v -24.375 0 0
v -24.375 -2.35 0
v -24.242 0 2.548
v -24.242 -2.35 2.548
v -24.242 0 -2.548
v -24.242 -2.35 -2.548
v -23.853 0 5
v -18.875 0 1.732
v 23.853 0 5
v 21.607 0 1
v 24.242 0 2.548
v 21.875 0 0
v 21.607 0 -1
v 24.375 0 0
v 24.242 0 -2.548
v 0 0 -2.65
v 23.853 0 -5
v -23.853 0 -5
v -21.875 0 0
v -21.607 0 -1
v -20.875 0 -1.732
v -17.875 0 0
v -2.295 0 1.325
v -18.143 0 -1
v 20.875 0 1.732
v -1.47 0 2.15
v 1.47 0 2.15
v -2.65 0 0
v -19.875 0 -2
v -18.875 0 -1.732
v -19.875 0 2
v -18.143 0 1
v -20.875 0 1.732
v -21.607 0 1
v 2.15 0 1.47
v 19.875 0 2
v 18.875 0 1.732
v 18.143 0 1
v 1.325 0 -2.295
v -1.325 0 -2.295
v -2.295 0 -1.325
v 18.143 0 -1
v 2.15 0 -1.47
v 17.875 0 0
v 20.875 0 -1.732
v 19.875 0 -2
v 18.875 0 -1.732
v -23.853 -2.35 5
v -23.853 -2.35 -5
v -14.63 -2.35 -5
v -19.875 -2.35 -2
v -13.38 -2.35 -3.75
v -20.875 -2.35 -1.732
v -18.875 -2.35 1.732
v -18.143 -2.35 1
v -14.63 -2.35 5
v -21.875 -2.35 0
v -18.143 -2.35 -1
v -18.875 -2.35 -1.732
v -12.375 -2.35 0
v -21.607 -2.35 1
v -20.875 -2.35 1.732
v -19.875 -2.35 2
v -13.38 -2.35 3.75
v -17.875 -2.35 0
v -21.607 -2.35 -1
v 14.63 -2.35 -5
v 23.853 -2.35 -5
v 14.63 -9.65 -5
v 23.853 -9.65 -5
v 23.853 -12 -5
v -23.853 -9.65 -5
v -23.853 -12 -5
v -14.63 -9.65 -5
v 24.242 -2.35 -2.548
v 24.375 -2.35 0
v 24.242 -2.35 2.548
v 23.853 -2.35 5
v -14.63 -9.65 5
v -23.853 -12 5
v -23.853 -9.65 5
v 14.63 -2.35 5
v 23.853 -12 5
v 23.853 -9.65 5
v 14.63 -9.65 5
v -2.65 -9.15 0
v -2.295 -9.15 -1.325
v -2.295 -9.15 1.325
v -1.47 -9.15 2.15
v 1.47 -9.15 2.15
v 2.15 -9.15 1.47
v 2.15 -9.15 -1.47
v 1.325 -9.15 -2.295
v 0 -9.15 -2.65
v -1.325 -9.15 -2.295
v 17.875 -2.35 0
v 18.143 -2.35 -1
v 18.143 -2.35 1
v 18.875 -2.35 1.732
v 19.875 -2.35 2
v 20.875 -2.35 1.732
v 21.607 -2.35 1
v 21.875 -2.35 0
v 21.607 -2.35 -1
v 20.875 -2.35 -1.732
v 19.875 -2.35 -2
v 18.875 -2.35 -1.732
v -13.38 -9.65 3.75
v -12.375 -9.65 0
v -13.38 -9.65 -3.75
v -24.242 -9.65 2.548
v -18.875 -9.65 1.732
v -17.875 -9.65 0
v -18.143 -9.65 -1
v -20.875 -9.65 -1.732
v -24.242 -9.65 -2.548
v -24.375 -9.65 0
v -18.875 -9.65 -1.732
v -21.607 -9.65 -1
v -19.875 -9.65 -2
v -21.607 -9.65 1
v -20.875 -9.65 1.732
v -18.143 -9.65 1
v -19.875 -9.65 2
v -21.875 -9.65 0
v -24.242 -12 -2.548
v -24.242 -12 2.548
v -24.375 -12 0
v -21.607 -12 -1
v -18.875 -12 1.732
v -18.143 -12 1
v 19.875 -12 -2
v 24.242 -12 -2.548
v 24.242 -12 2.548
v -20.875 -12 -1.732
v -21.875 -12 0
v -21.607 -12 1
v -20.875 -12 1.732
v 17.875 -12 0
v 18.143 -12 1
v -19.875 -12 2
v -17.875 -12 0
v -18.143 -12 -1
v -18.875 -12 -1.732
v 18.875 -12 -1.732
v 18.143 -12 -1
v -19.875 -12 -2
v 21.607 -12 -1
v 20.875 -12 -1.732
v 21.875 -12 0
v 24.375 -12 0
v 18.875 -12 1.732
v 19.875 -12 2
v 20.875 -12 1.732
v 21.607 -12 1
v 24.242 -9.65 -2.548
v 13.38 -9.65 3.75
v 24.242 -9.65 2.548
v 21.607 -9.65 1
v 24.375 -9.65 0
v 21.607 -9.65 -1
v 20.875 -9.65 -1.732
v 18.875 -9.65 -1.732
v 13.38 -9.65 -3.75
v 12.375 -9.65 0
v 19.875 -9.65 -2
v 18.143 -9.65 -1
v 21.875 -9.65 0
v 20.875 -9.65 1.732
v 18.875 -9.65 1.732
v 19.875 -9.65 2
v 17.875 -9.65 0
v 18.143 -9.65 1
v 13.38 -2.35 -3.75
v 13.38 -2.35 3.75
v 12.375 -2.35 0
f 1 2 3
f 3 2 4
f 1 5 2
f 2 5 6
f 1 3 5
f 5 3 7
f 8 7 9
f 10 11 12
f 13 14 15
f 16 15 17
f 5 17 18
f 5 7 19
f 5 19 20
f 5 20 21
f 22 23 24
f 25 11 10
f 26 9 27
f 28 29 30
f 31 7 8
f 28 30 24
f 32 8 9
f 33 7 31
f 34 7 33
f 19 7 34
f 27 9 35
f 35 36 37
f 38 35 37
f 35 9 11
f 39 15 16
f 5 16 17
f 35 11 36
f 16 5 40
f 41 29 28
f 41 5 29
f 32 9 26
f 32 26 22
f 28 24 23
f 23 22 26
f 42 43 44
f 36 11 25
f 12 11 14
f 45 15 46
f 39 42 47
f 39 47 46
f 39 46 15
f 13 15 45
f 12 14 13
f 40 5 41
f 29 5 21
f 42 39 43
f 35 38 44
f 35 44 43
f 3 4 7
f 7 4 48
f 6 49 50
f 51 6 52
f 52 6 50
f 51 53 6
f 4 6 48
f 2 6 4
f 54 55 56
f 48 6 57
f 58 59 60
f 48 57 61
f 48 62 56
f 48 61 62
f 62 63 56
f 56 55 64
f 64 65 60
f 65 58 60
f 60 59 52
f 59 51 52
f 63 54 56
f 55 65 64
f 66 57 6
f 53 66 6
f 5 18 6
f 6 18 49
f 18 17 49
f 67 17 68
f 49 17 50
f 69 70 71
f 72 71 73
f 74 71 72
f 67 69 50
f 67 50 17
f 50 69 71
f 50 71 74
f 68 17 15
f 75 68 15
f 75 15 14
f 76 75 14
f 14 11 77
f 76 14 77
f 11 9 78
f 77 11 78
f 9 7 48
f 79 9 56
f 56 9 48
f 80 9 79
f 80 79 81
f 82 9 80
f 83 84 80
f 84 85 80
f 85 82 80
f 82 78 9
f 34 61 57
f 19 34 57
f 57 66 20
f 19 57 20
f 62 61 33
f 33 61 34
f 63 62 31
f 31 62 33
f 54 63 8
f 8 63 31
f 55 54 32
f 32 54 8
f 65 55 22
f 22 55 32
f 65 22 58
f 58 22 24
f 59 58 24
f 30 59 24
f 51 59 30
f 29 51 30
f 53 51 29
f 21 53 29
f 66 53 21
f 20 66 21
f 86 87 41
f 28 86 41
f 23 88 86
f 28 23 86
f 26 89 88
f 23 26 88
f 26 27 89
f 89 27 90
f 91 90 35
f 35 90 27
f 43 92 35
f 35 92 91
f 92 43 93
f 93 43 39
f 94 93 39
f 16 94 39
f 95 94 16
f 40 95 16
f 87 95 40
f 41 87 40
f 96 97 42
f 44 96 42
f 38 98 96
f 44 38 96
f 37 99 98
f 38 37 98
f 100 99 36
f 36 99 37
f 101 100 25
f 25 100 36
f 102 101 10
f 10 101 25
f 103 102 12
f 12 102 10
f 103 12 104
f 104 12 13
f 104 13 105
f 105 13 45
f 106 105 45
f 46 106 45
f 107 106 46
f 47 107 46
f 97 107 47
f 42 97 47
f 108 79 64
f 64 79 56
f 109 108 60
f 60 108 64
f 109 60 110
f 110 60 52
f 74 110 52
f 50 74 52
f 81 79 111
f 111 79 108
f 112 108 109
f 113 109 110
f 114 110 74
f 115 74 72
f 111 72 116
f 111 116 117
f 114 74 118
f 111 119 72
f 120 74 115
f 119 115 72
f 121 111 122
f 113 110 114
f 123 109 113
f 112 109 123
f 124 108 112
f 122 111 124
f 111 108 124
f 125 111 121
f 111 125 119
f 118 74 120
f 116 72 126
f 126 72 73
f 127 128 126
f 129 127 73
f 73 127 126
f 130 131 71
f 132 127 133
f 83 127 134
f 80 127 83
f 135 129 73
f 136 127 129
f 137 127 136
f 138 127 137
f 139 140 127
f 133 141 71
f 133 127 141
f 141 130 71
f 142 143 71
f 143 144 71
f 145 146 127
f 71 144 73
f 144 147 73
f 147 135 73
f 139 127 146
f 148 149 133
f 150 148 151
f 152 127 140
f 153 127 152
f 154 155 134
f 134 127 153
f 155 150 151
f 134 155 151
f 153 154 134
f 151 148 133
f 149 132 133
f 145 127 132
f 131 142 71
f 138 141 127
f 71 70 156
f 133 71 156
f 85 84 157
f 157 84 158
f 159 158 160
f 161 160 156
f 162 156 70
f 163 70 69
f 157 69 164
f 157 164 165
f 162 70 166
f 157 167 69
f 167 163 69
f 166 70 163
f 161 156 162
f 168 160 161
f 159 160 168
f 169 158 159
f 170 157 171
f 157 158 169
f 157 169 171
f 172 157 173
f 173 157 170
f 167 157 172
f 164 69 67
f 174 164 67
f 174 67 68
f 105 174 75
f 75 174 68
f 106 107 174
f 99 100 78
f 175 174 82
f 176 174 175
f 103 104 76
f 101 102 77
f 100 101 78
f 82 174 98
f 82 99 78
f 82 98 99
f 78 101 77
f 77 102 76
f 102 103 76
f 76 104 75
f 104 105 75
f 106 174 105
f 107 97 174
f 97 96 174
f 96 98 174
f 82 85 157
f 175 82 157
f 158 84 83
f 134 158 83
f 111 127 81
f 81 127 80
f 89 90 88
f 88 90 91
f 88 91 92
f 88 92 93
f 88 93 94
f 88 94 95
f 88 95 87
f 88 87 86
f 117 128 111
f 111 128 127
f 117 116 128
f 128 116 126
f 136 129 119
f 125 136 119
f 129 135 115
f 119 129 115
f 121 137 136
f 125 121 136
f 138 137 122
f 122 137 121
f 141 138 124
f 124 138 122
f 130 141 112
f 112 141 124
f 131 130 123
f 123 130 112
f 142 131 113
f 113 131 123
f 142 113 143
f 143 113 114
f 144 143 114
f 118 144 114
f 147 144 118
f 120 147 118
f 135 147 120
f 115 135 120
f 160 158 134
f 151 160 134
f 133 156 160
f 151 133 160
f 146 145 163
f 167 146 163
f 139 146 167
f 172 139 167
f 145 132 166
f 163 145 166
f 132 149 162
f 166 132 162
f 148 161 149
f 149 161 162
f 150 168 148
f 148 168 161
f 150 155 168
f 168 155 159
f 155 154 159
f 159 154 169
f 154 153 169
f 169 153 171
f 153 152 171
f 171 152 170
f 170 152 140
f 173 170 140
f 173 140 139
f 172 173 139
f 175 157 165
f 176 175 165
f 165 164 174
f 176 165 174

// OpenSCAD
// file: includes/includes/jonaskuehling-default.scad
module teardrop (r=4.5,h=20,alpha=45,teardropcorner=0,fulldrop=false){		// tear drop hole for top-centering
											// use teardropcorner=1 for bottom horizontal corners
	render()
	translate([-h/2,0,0])
		rotate([-270,0+(teardropcorner*180),90])
			difference(){
				linear_extrude(height=h){
					circle(r, $fn=24);
					polygon(points=[[0,0],[r*cos(alpha),r*sin(alpha)],[0,r/sin(alpha)],[-r*cos(alpha),r*sin(alpha)]], paths=[[0,1,2,3]]);
				}
				if(fulldrop==false) 
					translate([0,(r/sin(alpha))/2+r,h/2]) cube([2*r+2,r/sin(alpha),h+2],center=true);
			}
}

//teardrop(4.5,22,fulldrop=true);



module teardropcentering (r=4.5,h=20,alpha=45){				// tear drop hole for top-centering
	centering_offset_factor = 1.1;
	render()
	translate([-h/2,0,0])
		rotate([-270,0,90])
			difference(){
				linear_extrude(height=h){
					circle(r, $fn=24);
					polygon(points=[[0,0],[r*cos(alpha),r*sin(alpha)],[0,r/sin(alpha)],[-r*cos(alpha),r*sin(alpha)]], paths=[[0,1,2,3]]);
				}
				translate([0,(r/sin(alpha))/2+r*centering_offset_factor,h/2]) cube([2*r+2,r/sin(alpha),h+2],center=true);
			}
}

//teardropcentering();



module teardropcentering_half (r=4.5,h=20, bottom=0,alpha=45){				// tear drop hole for top-centering
																// upper half (bottom=0) or bottom half (bottom=1)
	centering_offset_factor = 1.2;
	render()
	translate([-h/2,0,0])
		rotate([-270,0,90])
			difference(){
				linear_extrude(height=h){
					circle(r, $fn=24);
					polygon(points=[[0,0],[r*cos(alpha),r*sin(alpha)],[0,r/sin(alpha)],[-r*cos(alpha),r*sin(alpha)]], paths=[[0,1,2,3]]);
				}
				translate([0,(r/sin(alpha))/2+r*centering_offset_factor,h/2]) cube([2*r+2,r/sin(alpha),h+2],center=true);
				translate([0,-(r*centering_offset_factor)/2-0.5+bottom*(r*centering_offset_factor+1),h/2]) cube([2*r+2,r*centering_offset_factor+1,h+2],center=true);
			}
}

//teardropcentering_half(bottom=0);


module polyhole(d,h){
	n = max(round(2 * d),3);
	cylinder(h = h, r = (d / 2) / cos (180 / n), $fn = n, center=true);
}



module roundcorner(radius,edge_length){
	render()
	translate([0,0,-1])
		difference(){
			translate([-1,-1,0]) cube(size = [radius+1,radius+1,edge_length+2], center = false);
			translate(v = [radius,radius,-1]) cylinder(h = edge_length+4, r=radius, center=false);
		}
}

//roundcorner(5,5);



module roundcorner_tear(radius,edge_length){
	render()
	difference(){
		translate([-1,-1,-1]) cube(size = [edge_length+2, radius+1, radius+1], center = false);
		translate([(edge_length+4)/2-2, radius, radius])
			teardrop(radius, edge_length+4,teardropcorner=1);
	}
}

//roundcorner_tear(8,20);



module nut_trap(nut_wrench_size,trap_height,vertical=true, clearance=0.2){		// M3 wrench size = 5.5
	cornerdiameter =  (((nut_wrench_size)/2)+clearance) / cos(180/6);
	rotate([0,vertical*90,0])
		cylinder(h = trap_height, r = cornerdiameter, center=true, $fn = 6);
}



module nut_slot(nut_wrench_size,nut_height, nut_elevation,vertical=false, clearance=0.2){		// M3 wrench size = 5.5
	cornerdiameter =  (((nut_wrench_size)/2)+clearance) / cos(180/6);
	slot_height = nut_height+2*clearance;
	slot_width = nut_wrench_size+2*clearance;
	rotate([0,vertical*270,0]){
		cylinder(h = slot_height, r = cornerdiameter, center=true, $fn = 6);
		translate([0,-slot_width/2,-slot_height/2]) cube([nut_elevation+1,slot_width,slot_height]);
	}
}

//nut_slot(5.5,3,4,1);



module barbell (x1,x2,r1,r2,r3,r4) 
{
	x3=triangulate (x1,x2,r1+r3,r2+r3);
	x4=triangulate (x2,x1,r2+r4,r1+r4);
	render()
	difference ()
	{
		union()
		{
			translate(x1)
			circle (r=r1);
			translate(x2)
			circle(r=r2);
			polygon (points=[x1,x3,x2,x4]);
		}
		
		translate(x3)
		circle(r=r3,$fa=5);
		translate(x4)
		circle(r=r4,$fa=5);
	}
}

function triangulate (point1, point2, length1, length2) = 
point1 + 
length1*rotated(
atan2(point2[1]-point1[1],point2[0]-point1[0])+
angle(distance(point1,point2),length1,length2));

function distance(point1,point2)=
sqrt((point1[0]-point2[0])*(point1[0]-point2[0])+
(point1[1]-point2[1])*(point1[1]-point2[1]));

function angle(a,b,c) = acos((a*a+b*b-c*c)/(2*a*b)); 

function rotated(a)=[cos(a),sin(a),0];
// file: includes/lm8uu-holder-slim_double-vertical.scad
// LM8UU holder slim
// *********************************************
// Jonas Kühling
// http://www.jonaskuehling.de
// http://www.thingiverse.com/jonaskuehling
// *********************************************
// derived from:
// http://www.thingiverse.com/thing:14942

use <includes/jonaskuehling-default.scad>

// LM8UU/rod dimensions
LM8UU_dia = 15.4;
LM8UU_length = 24;
rod_dia = 8;

//screw/nut dimensions (M3) - hexagon socket head cap screw ISO 4762, hexagon nut ISO 4032
screw_thread_dia_iso = 3;
screw_head_dia_iso = 5.5;
nut_wrench_size_iso = 5.5;


// screw/nut dimensions for use (plus clearance for fitting purpose)
clearance_dia = 0.5;
screw_thread_dia = screw_thread_dia_iso + clearance_dia;
screw_head_dia = screw_head_dia_iso + clearance_dia;
nut_wrench_size = nut_wrench_size_iso + clearance_dia;
nut_dia_perimeter = (nut_wrench_size/cos(30));
nut_dia = nut_dia_perimeter;
nut_surround_thickness = 2;

// main body dimensions
body_wall_thickness = 2;
extra_cyl_thickness = 1.5;
body_width = LM8UU_dia + (2*body_wall_thickness);
body_height = body_width;
body_length = 74;
gap_width = rod_dia + 2;
screw_bushing_space = 1;
screw_elevation = LM8UU_dia + body_wall_thickness + (screw_thread_dia/2) +screw_bushing_space;

overhang_angle = 60;
r = nut_dia_perimeter/2+nut_surround_thickness;
extra_height_varticalprint = r*sin(90-overhang_angle);

// TEST - uncomment to render in openscad:
//lm8uu_holder_slim_double_vertical();		



// main body
module lm8uu_holder_slim_double_vertical()
{
	// rotate vertical and center bearing around z-axis
	translate([0,-(LM8UU_dia/2+body_wall_thickness),body_length/2])
	rotate([-90,0,0])
	difference()
	{
		union()
		{	
			// body
			translate([-body_width/2,-body_length/2,body_height/2])
				cube([body_width,body_length,(LM8UU_dia/2)+screw_bushing_space+(screw_thread_dia/2)+extra_height_varticalprint]);
			translate([0,0,(LM8UU_dia/2)+body_wall_thickness])		
				rotate([90,0,0])
					cylinder(r=(LM8UU_dia/2)+body_wall_thickness + extra_cyl_thickness, h=body_length, center=true);
	
			// gap support
			translate([-(gap_width/2)-body_wall_thickness,-(body_length/2),body_height/2])
				cube([body_wall_thickness,LM8UU_length,(LM8UU_dia/2)+screw_bushing_space+(screw_thread_dia/2)]);
			translate([gap_width/2,-(body_length/2),body_height/2])
				cube([body_wall_thickness,LM8UU_length,(LM8UU_dia/2)+screw_bushing_space+(screw_thread_dia/2)]);
	
			for(i=[-(body_length/2-LM8UU_length/2),(body_length/2-LM8UU_length/2)])
			{
				// nut trap surround
				translate([gap_width/2,i,screw_elevation])
					rotate([0,90,0])
						cylinder(r=(((nut_wrench_size+nut_surround_thickness*2)/cos(30))/2), h=(body_width-gap_width)/2, $fn=20);
	
				// Screw hole surround
				translate([-gap_width/2,i,screw_elevation])
					rotate([0,-90,0])
						cylinder(r=(screw_head_dia/2)+nut_surround_thickness, h=(body_width-gap_width)/2, $fn=20);
			}
		}
	
		// bushing hole
		translate([0,0,LM8UU_dia/2+2])
			rotate([90,0,0])
				polyhole(d=LM8UU_dia, h=body_length+1, center=true);
	
		// top gap
		translate([-(gap_width/2),-(body_length/2)-1,body_height/2])
			cube([gap_width,body_length+2,(LM8UU_dia/2)+screw_bushing_space+(screw_thread_dia/2)+(nut_dia/2)+nut_surround_thickness+1]);
	
		for(i=[-(body_length/2-LM8UU_length/2),(body_length/2-LM8UU_length/2)])
		{
			// screw hole (one all the way through)
			translate([0,i,screw_elevation])
				rotate([0,90,0])
					polyhole(d=screw_thread_dia, h=body_width+3, center=true);
		
			// nut trap
			translate([gap_width/2+body_wall_thickness,i,screw_elevation])
				rotate([0,90,0])
					cylinder(r=nut_dia/2, h=body_width/2-gap_width/2-body_wall_thickness+1,$fn=6);
		
			// screw head hole
			translate([-(gap_width)/2-body_wall_thickness,i,screw_elevation])
				rotate([0,-90,0])
					cylinder(r=screw_head_dia/2, h=body_width/2-gap_width/2-body_wall_thickness+1,$fn=20);

		}	
	}
}

/*
// Based on nophead research
module polyhole(d,h,center=false) {
    n = max(round(2 * d),3);
    rotate([0,0,180])
        cylinder(h = h, r = (d / 2) / cos (180 / n), center=center, $fn = n);
}
*/
// file: configuration.scad
// Harmonic drive main parameters
press_angle = 40;
flex_teeth = 50;
teeth_diff = 2;

tol = 0.25; // generic tolerance used in some places
lh = 0.3; // layer height needed in a few places

// Main geometry
bearing_r = 22/2;
bearing_h = 7;
washer_h = 1;
bolthead_h = 4;
stepper_shaft_h = 20;
circ_drive_bearing_indent = 1;
flex_bearing_indent = 1;
drive_bearing_r = 13/2;
drive_bearing_h = 7;

// Flexspline dimensions
flex_inner_r = 25.4;
flex_h = 36;
flex_bottom_h = 2;
flex_bolthole_r = 6;
flex_wt = 0.81;
flex_lip = 1;
pitch = 197;
helix_twist = 5;

// Circspline dimensions
circ_h = 20;
circ_outer_r = 34;
circ_inner_r = 30;
circ_bottom_h = 4;
// Negative clearance cuts a bit from the top of the teeth
circ_tooth_clearance = -0.5;

// Wave driver dimensions
wave_radius = 52.75/2;
driver_h = 12;
driver_w = 10;
driver_tol = 0.15;
drive_bearing_spacing_r = wave_radius - drive_bearing_r;

// The total height of the drive unit, excluding the motor and flexspline base.
assy_h = 50;
stepper_shaft_l = 20;

tooth_overlap = (flex_h + circ_h) - assy_h;

// Position of the middle of the tooth overlap section on the stepper shaft.
stepper_shaft_mid_rot = circ_h - tooth_overlap/2;

echo(str("Tooth overlap: ", tooth_overlap));
echo(str("Drive midpoint on stepper shaft: ", stepper_shaft_mid_rot));

red_r = teeth_diff/flex_teeth;
echo(str("Reduction ratio: 1/", flex_teeth/teeth_diff, " (", red_r, ")"));
echo(str("With 200x16 motor, arc minutes per microstep: ", 360*60/(200*16)*red_r));
echo(str("Linear resolution (mm) for 100 mm arm: ", sin(360/(200*16)*red_r) * 100));
echo(str("Torque (N) at 100 mm for 40 Ncm motor: ", 4/red_r));
echo(str("Linear speed equivalent to standard Prusa's 300 mm/s at 100 mm: ",
         300*80 * sin(360/(200*16)*red_r) * 100));

// Circspline mount dimensions
circ_mount_r = circ_outer_r + 6;
circ_mount_h = 8;
circ_mount_1 = 45;
circ_mount_2 = 135;
circ_mount_3 = 225;

// Master arm height setting
main_arm1_height = 12;
main_arm2_height = 12;

// Arm 1st segment dimensions
arm_flex_base_bottom_h = 8;
arm_flex_base_h = 14;
arm_joint1_base_h = main_arm1_height;
arm_joint1_base_r = 15;
arm_joint1_bearing_indent = 7;
arm_large_bolthole_r=6;
arm_w = 30;
arm1_h = main_arm1_height;

// default length
length = 100;

// Truss generation parameters. The element width must be smaller than
// thickness to avoid the top becoming unprintable (triangle outlines
// over thin air)
truss_thickness = 3.5;
truss_width_coeff = 0.75;
truss_radius = 0.1;
truss_arm1 = 1.07; // Extra coefficient for arm1

carr_truss_thickness = 5;
carr_truss_width_coeff = 0.75;
carr_truss_radius = 0.1;

// Arm 2nd segment dimensions
arm2_h = main_arm2_height;
arm_separation = arm_joint1_base_h - arm_joint1_bearing_indent 
  + bearing_h + washer_h * 2;
arm_bolthole_r=4;
arm_joint2_base_h = main_arm2_height;
arm_joint2_base_r = 15;
arm_joint3_hollow_r = 10;
arm_joint31_base_h = main_arm2_height;
arm_joint31_base_r = 15;
arm_joint31_bearing_r = 13/2;
arm_joint31_bearing_h = 5;
arm_joint31_bearing_clearance = 2;
arm_joint32_base_h = main_arm2_height;
arm_joint32_base_r = 15;
arm_joint32_tube_h_clearance = 1;
arm_joint32_tube_wt = 2;
arm_joint32_tube_groove_depth = 1;
arm_joint31_bearing_spacing = arm_joint3_hollow_r + arm_joint32_tube_wt 
  + arm_joint31_bearing_r;

echo(str("Arm final stage vertical separation: ", arm_separation));
echo(str("Arm final stage total height: ", arm_separation + 2 * arm2_h));

// Default arm lengths
arm1_length = 100;
arm2_length = 150;
arm_spacing = 75;
arm_base_maxrot = 90 - asin((circ_outer_r + arm_w/2) / arm_spacing);
arm_joint_maxrot = 150; // hand-tuned
echo(str("Arm base minimum rotation to clear other base: ", arm_base_maxrot));

// Z carriage dimensions
carr_floor = 1; // Carriage floor thickness.
carr_wt = 3.5; // Carriage wall thickness.
carr_truss_width = arm_spacing + bearing_r * 2 + 20; // 120;
carr_truss_depth = 15;
drive_h = assy_h + bearing_h + washer_h 
  + arm_flex_base_bottom_h; // Total length needed by the drive unit.
carr_truss_length = circ_outer_r + 1 + carr_wt + bearing_r + 10;
carr_rod_offset = -46;
carr_drive_offset = -41;
carr_top_support_thickness = 3;
carr_top_support_width = 14;
carr_top_support_length = 70;

// Z end dimensions
z_end_bottom_thickness = 7;
z_end_bottom_width = arm_spacing + 20;
z_end_bottom_length = 40;
z_end_top_length = 50;
z_end_bottom_height = 30;
z_end_rod_offset = 24; // rod center from vertical plate
// file: common.scad
include <configuration.scad>;
use <includes/parametric_involute_gear_v5.0.scad>;
use <includes/SolidReplacementTruss.scad>;
include <includes/lm8uu-holder-slim_double-vertical.scad>;

// Generic spline gear with a herringbone section
module spline_gear(number_of_teeth, circular_pitch, pressure_angle,
                   height, helix_height, twist, backlash, clearance) {
  gear(number_of_teeth=number_of_teeth,
	     circular_pitch=circular_pitch,
	     pressure_angle=pressure_angle,
	     clearance = clearance,
	     gear_thickness = height - helix_height,
   	     rim_thickness = height - helix_height,
	     rim_width = 5,
	     hub_thickness = height - helix_height,
	     hub_diameter=0,
         bore_diameter=0,
	     circles=0,
         backlash=backlash,
	     twist=0);
  translate([0, 0, height - helix_height])
    gear(number_of_teeth=number_of_teeth,
	     circular_pitch=circular_pitch,
	     pressure_angle=pressure_angle,
	     clearance = clearance,
	     gear_thickness = helix_height/2,
   	     rim_thickness = helix_height/2,
	     rim_width = 5,
	     hub_thickness = helix_height/2,
	     hub_diameter=0,
         bore_diameter=0,
	     circles=0,
         backlash=backlash,
	     twist=twist);
  rotate([0, 0, -twist])
  translate([0, 0, height - helix_height/2])
    gear(number_of_teeth=number_of_teeth,
	     circular_pitch=circular_pitch,
	     pressure_angle=pressure_angle,
	     clearance = clearance,
	     gear_thickness = helix_height/2,
   	     rim_thickness = helix_height/2,
	     rim_width = 5,
	     hub_thickness = helix_height/2,
	     hub_diameter=0,
         bore_diameter=0,
	     circles=0,
         backlash=backlash,
	     twist=-twist);
}

// Simplified module for creating flexsplines (with helix section)
module flexspline_helix_gear(height, backlash, clearance) {
  spline_gear(number_of_teeth=flex_teeth,
	     circular_pitch=pitch,
	     pressure_angle=press_angle,
	     height=height,
         helix_height=tooth_overlap,
         backlash=backlash,
         clearance = clearance,
	     twist=-helix_twist);

}

// Simplified module for creating flexsplines (without helix section)
module flexspline_gear(height, backlash, clearance) {
  gear(number_of_teeth=flex_teeth,
	     circular_pitch=pitch,
	     pressure_angle=press_angle,
	     clearance = clearance,
	     gear_thickness = height,
   	     rim_thickness = height,
	     rim_width = 5,
	     hub_thickness = height,
	     hub_diameter=0,
         bore_diameter=0,
	     circles=0,
         backlash=backlash,
	     twist=0);
}

// Variation of the truss_platform, does not try to make the edges
// vertical but instead leaves them slanted.
module my_truss_platform(length, width, height, thickness,
			 element_width, radius) 
{ 
  segments = 2*floor(width/height)+1; 
  seg_width = width/(segments+1);
    
  if (segments > 0)
    for(i = [1 : segments])
      {
	translate([0, (seg_width)*(i-1)+2*seg_width*(1+pow(-1,i))/2, 
		   (height)*(1+pow(-1,i))/2])
	  {
	    rotate([180*(1+pow(-1, i))/2, 0, 0])
	      isoc_truss(length, seg_width*2, height, thickness, 
			 element_width, radius);
	  }
      }
}

module z_end_bottom_clamp_bolts() {
  translate([0, -7, 0]) rotate([0, 90, 0]) cylinder(r=1.5, h=20);
  translate([0, 7, 0]) rotate([0, 90, 0]) cylinder(r=1.5, h=20);  
}

module circspline_mount(extra=0) {
  translate([0, circ_mount_r, 0]) cylinder(r=8+extra, h=circ_mount_h, $fn=16);
  translate([-8-extra, 0, 0]) cube([16+extra*2, circ_mount_r, circ_mount_h]);
}

module circspline_mount_void() {
  translate([0, circ_mount_r, 0]) cylinder(r=2, h=circ_mount_h, $fn=16);
}
// main file
include <common.scad>;

module wave_rotor() {
  difference() {
    intersection() {
      translate([-flex_inner_r, -driver_w/2, 0])
         cube([2*flex_inner_r, driver_w, driver_h]);
      cylinder(r=drive_bearing_spacing_r+drive_bearing_r-2, h=driver_h, $fn=60);
    }
    translate([0, 0, -driver_h/2 + (stepper_shaft_l - stepper_shaft_mid_rot) + driver_tol])
    # difference() {
      cylinder(r=2.5+driver_tol, h=driver_h, $fn=12);
      translate([-2.5, 2+driver_tol, 0]) cube([5, 5, driver_h]);
      translate([2+driver_tol, -2.5, 0]) cube([5, 5, driver_h]);
    }
    for (i = [0 : 180 : 180]) {
    rotate([0, 0, i])
    translate([drive_bearing_spacing_r, 0, -driver_tol])
      union() {
        cylinder(r=2, h=driver_h+1, $fn=12);
        translate([0, 0, (driver_h - drive_bearing_h) / 2])
          cylinder(r=drive_bearing_r + 1, h=drive_bearing_h+driver_tol*2, 
		   $fn=12);
      }
    }
  }
}

rotate([90, 0, 0]) wave_rotor();
